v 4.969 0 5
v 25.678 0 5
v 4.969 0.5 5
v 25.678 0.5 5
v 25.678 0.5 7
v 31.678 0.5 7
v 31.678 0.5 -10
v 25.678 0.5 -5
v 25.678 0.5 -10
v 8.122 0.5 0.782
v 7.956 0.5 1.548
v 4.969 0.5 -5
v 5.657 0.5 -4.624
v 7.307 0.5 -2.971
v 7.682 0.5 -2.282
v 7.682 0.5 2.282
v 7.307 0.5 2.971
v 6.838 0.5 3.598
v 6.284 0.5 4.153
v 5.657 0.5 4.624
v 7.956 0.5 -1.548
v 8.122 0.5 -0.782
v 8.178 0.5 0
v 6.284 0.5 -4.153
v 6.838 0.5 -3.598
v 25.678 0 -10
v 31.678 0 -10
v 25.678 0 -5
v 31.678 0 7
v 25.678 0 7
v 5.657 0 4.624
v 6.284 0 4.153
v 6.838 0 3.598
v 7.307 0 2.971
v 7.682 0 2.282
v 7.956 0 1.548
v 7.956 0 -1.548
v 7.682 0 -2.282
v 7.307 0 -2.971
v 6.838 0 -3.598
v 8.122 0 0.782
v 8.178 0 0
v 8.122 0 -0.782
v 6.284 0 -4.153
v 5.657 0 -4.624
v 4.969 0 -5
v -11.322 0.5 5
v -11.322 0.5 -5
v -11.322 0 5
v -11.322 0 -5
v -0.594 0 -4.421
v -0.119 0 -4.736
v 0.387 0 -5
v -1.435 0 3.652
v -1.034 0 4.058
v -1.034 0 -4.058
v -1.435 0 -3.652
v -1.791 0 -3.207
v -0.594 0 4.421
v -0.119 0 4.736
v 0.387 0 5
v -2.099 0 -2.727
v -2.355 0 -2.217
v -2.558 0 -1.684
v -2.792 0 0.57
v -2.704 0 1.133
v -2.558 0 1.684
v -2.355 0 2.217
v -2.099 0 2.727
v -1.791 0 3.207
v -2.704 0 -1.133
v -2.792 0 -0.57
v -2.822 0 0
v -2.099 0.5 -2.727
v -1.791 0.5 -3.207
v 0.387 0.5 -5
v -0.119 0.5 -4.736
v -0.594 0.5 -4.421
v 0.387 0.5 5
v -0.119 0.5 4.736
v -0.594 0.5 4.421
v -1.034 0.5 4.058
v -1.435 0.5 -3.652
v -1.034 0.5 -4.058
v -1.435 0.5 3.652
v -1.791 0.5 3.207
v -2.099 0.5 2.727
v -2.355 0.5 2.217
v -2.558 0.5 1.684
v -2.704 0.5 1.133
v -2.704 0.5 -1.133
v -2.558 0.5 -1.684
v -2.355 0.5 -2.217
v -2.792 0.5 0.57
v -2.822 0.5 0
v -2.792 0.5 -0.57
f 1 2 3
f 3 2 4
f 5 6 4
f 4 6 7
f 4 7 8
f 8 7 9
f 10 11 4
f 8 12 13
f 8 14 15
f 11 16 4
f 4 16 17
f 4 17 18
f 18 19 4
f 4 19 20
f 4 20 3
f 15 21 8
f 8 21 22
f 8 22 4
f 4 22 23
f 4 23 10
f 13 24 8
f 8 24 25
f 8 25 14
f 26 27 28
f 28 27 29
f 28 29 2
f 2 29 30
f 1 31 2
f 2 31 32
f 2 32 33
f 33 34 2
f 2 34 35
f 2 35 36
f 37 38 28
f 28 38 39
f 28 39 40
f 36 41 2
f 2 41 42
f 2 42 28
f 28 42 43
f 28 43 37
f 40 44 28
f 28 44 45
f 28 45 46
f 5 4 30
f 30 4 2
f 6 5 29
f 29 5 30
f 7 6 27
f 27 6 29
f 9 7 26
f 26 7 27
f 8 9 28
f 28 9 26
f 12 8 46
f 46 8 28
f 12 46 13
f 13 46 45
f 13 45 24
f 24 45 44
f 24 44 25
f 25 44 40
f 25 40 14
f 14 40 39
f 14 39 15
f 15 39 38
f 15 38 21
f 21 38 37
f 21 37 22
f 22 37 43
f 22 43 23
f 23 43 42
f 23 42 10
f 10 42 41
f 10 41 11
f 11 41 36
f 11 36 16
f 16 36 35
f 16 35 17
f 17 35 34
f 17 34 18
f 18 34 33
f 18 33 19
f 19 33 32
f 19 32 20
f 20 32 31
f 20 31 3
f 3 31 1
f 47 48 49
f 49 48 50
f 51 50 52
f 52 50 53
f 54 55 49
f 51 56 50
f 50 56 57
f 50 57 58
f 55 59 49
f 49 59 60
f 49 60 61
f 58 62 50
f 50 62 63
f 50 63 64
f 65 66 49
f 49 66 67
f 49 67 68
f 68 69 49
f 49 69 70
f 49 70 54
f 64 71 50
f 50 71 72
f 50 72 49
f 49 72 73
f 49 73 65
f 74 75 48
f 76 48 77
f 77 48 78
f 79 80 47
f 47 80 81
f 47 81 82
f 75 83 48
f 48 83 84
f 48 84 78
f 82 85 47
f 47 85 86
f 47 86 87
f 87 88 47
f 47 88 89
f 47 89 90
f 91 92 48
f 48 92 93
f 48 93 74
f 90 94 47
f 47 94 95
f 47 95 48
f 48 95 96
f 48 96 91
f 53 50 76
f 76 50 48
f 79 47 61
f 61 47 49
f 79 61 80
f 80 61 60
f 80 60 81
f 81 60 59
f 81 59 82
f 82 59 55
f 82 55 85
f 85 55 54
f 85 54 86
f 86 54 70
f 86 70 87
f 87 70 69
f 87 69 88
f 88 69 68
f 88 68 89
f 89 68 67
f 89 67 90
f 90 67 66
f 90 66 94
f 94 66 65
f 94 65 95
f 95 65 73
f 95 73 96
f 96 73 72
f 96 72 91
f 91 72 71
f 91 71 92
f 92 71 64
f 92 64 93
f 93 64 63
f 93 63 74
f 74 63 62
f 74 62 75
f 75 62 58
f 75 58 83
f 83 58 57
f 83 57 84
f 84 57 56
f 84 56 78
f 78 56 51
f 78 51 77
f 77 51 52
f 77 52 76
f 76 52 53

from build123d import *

# Parameters (mm, degrees)
EXTRUDE_1_DEPTH     = 0.5
SKETCH_2_R          = 5.5
CUT_EXTRUDE_1_DEPTH = 1.5


with BuildPart() as part:
    # 草图1 → 凸台-拉伸1 (new body)
    with BuildSketch(Plane(origin=(0, 0, 0), x_dir=(1, 0, 0), z_dir=(0, 1, 0))):
        Polygon((-11.322033898, 5), (25.677966102, 5), (25.677966102, 10), (31.677966102, 10), (31.677966102, -7), (25.677966102, -7), (25.677966102, -5), (-11.322033898, -5), align=None)
    extrude(amount=EXTRUDE_1_DEPTH)

    # 草图2 → 切除-拉伸1 (cut, through all)
    with BuildSketch(Plane.XZ):
        with Locations((2.677966102, 0)):
            Circle(SKETCH_2_R)
    extrude(amount=-CUT_EXTRUDE_1_DEPTH, mode=Mode.SUBTRACT)


solid = part.part
